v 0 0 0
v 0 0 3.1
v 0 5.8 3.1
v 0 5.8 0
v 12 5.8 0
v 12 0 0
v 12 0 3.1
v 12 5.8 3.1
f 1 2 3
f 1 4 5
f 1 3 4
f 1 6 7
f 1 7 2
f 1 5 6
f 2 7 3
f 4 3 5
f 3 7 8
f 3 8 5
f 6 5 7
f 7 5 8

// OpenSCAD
/* Warning, this is a very basic generator with a lot of approximation 
input data : [TRANSPDR, 7ZW, 12x5.8x3.1mm, , , A, C04-00657A]
generated by com.zoubworld.electronics.cad.model3d.Basic
Date : Sun Feb 15 10:50:49 CET 2026
*/

//body
color("black")
translate([0,0,0])
cube([12.0,5.8,3.1], center=false);
